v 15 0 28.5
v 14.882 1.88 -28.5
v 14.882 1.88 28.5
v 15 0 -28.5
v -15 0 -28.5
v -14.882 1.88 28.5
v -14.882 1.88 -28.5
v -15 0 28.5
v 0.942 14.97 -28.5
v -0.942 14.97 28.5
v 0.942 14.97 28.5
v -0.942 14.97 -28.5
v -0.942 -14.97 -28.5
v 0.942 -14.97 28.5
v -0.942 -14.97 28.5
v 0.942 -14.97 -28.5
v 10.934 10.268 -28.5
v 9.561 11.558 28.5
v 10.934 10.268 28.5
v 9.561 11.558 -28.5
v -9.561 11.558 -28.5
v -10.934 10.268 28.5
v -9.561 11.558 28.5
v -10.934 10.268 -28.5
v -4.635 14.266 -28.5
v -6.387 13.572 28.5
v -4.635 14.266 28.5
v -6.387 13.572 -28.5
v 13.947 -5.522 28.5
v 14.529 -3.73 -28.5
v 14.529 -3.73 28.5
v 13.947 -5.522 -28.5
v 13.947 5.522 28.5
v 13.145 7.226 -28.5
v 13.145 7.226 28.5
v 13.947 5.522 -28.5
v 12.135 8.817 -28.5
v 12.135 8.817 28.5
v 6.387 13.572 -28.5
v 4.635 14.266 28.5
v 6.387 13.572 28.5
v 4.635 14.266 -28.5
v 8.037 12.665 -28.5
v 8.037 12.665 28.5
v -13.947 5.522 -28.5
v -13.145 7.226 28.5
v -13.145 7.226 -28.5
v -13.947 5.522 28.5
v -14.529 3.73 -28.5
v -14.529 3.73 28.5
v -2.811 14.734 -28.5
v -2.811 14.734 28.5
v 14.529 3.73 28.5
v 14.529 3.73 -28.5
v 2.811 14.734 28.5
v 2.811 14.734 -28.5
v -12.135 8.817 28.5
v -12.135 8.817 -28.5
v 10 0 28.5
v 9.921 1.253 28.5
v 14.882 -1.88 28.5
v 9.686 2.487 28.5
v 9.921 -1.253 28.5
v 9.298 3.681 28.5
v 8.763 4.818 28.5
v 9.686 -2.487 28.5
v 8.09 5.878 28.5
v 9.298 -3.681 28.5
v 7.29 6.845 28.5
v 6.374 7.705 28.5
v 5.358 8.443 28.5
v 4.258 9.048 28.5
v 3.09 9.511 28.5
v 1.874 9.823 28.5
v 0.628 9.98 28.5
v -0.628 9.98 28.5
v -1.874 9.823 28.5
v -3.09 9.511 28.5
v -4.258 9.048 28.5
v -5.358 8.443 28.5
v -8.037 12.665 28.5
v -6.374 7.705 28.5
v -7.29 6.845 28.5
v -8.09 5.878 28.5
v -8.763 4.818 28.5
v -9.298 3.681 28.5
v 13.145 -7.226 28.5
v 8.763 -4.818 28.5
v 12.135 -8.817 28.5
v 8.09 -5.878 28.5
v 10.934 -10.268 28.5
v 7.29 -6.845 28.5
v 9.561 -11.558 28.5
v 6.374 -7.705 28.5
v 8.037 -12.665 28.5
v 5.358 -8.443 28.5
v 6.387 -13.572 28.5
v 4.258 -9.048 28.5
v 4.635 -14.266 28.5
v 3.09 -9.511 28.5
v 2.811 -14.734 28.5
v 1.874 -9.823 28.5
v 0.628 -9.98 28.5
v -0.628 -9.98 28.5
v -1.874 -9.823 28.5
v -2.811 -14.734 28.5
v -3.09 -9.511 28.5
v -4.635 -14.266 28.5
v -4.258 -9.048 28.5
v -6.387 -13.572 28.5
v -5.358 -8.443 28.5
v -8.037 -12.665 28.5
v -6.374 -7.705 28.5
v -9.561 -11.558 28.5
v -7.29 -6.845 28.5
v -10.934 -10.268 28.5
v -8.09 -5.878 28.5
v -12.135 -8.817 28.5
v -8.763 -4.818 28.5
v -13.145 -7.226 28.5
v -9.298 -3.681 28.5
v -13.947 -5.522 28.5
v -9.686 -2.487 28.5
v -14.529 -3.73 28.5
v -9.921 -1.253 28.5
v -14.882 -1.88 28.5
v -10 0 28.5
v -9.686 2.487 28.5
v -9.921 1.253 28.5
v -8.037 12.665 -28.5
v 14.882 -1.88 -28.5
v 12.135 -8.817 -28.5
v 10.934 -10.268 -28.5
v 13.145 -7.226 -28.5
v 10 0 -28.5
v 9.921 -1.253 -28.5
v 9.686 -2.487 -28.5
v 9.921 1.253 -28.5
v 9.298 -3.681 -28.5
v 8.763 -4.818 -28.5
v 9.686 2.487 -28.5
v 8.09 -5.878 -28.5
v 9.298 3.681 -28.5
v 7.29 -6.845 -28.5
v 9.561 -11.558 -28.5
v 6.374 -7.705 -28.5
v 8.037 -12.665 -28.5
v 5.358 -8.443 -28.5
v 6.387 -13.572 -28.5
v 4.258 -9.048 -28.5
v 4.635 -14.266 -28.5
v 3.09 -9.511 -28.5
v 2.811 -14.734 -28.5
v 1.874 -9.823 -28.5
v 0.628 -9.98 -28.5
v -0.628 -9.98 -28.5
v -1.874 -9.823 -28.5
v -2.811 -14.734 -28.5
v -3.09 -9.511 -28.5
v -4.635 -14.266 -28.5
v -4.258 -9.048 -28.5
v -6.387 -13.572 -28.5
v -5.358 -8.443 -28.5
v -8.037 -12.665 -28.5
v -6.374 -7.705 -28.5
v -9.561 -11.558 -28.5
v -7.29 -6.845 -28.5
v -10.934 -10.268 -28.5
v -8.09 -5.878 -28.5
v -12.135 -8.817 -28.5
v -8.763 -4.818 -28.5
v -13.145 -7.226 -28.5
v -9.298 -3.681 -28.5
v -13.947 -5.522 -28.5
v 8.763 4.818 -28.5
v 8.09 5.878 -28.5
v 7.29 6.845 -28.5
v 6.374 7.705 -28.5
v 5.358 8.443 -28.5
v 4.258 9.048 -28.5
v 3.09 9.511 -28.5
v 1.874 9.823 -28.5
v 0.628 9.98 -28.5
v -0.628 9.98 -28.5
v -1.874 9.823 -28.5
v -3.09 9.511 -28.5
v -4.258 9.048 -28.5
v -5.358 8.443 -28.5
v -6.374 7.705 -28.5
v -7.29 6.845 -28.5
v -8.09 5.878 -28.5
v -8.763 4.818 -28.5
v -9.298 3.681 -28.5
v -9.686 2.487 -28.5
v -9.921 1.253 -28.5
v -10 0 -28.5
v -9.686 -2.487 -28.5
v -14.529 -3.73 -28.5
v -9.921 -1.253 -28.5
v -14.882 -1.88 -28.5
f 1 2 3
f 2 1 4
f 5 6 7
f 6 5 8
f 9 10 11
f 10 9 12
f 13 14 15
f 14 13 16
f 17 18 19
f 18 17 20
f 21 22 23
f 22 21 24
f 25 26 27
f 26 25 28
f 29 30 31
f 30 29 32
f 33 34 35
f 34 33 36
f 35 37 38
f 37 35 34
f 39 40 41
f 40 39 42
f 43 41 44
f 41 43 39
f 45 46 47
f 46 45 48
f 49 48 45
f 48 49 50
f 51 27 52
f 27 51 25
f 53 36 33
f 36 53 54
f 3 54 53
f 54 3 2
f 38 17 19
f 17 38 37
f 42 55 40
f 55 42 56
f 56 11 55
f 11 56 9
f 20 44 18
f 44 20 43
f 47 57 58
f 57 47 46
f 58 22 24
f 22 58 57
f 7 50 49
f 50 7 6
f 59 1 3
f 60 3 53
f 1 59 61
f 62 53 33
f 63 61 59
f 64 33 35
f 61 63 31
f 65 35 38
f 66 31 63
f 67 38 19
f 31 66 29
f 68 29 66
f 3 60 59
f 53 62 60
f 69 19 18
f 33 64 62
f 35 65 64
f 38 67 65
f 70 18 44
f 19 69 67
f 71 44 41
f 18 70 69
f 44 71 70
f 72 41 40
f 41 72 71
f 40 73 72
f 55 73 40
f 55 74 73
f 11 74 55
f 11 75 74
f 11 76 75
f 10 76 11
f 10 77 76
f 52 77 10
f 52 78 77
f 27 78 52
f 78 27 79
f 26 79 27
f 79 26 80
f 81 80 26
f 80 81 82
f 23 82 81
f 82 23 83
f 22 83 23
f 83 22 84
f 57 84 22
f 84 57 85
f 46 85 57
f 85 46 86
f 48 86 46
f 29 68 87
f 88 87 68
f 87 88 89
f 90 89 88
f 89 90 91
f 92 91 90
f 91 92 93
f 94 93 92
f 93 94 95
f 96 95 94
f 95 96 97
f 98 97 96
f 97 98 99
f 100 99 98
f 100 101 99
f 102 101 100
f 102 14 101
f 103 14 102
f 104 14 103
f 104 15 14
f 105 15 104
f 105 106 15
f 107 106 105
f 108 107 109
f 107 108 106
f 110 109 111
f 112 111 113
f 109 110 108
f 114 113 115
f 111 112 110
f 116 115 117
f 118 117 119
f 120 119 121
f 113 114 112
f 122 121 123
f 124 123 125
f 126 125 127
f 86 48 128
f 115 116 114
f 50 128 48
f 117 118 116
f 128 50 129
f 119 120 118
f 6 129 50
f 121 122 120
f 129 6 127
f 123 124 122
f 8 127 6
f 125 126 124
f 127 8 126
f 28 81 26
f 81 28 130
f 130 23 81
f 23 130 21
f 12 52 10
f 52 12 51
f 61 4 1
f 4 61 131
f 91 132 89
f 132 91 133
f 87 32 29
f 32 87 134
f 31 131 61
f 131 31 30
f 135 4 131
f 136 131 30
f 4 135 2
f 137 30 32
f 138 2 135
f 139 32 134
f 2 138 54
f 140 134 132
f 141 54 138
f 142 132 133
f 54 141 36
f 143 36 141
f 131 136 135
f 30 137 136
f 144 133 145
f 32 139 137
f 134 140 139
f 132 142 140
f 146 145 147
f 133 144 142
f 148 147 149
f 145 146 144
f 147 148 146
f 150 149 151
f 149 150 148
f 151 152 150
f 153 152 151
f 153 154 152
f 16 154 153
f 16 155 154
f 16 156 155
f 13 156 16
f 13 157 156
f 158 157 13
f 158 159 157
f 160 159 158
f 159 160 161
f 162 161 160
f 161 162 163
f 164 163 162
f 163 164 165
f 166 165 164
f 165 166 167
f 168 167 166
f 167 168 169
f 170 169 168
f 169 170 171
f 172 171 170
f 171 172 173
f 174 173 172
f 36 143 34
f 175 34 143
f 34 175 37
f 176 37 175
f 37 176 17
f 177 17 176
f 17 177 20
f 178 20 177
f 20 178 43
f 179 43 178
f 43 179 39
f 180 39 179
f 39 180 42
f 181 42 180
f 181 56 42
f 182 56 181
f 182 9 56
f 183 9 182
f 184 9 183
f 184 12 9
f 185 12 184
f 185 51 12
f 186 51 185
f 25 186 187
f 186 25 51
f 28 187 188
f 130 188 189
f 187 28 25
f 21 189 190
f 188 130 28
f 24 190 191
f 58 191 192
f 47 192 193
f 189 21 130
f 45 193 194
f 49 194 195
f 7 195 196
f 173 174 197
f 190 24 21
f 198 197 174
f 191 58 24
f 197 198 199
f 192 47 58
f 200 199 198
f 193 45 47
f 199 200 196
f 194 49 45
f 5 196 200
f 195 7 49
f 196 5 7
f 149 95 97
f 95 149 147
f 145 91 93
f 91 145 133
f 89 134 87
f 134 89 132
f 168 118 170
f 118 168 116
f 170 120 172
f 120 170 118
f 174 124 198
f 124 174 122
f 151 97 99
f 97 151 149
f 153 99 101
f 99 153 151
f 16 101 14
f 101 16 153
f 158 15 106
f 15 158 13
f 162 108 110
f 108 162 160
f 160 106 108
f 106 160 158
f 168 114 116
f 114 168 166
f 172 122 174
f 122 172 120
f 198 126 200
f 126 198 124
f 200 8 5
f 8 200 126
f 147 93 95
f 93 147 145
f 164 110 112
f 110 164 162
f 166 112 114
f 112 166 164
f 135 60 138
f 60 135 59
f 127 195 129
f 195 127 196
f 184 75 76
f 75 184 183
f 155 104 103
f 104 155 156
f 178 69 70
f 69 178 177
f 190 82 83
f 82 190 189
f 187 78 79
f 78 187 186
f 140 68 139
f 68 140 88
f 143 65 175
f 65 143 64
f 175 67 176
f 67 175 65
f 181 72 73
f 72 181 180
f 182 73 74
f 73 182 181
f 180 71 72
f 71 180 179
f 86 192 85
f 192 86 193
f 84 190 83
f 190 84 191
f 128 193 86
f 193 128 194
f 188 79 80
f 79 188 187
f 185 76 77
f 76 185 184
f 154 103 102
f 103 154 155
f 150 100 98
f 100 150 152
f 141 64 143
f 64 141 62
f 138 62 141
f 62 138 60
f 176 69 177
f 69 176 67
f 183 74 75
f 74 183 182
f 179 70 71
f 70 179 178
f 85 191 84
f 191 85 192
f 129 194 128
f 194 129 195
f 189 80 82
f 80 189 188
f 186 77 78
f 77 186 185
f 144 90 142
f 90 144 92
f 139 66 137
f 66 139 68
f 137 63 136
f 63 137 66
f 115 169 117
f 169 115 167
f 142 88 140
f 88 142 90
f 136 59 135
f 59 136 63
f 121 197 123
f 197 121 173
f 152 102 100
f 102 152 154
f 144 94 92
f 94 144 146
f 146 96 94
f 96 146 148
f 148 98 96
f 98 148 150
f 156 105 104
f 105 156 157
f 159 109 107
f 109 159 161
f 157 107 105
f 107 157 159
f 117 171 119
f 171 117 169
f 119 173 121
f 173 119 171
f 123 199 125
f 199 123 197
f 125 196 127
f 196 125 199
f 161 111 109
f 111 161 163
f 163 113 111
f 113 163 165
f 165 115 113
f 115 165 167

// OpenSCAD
$fn = 50;


difference() {
	union() {
		translate(v = [0, 0, -28.5000000000]) {
			cylinder(h = 57, r = 15.0000000000);
		}
	}
	union() {
		translate(v = [0, 0, -100.0000000000]) {
			cylinder(h = 200, r = 10);
		}
	}
}
